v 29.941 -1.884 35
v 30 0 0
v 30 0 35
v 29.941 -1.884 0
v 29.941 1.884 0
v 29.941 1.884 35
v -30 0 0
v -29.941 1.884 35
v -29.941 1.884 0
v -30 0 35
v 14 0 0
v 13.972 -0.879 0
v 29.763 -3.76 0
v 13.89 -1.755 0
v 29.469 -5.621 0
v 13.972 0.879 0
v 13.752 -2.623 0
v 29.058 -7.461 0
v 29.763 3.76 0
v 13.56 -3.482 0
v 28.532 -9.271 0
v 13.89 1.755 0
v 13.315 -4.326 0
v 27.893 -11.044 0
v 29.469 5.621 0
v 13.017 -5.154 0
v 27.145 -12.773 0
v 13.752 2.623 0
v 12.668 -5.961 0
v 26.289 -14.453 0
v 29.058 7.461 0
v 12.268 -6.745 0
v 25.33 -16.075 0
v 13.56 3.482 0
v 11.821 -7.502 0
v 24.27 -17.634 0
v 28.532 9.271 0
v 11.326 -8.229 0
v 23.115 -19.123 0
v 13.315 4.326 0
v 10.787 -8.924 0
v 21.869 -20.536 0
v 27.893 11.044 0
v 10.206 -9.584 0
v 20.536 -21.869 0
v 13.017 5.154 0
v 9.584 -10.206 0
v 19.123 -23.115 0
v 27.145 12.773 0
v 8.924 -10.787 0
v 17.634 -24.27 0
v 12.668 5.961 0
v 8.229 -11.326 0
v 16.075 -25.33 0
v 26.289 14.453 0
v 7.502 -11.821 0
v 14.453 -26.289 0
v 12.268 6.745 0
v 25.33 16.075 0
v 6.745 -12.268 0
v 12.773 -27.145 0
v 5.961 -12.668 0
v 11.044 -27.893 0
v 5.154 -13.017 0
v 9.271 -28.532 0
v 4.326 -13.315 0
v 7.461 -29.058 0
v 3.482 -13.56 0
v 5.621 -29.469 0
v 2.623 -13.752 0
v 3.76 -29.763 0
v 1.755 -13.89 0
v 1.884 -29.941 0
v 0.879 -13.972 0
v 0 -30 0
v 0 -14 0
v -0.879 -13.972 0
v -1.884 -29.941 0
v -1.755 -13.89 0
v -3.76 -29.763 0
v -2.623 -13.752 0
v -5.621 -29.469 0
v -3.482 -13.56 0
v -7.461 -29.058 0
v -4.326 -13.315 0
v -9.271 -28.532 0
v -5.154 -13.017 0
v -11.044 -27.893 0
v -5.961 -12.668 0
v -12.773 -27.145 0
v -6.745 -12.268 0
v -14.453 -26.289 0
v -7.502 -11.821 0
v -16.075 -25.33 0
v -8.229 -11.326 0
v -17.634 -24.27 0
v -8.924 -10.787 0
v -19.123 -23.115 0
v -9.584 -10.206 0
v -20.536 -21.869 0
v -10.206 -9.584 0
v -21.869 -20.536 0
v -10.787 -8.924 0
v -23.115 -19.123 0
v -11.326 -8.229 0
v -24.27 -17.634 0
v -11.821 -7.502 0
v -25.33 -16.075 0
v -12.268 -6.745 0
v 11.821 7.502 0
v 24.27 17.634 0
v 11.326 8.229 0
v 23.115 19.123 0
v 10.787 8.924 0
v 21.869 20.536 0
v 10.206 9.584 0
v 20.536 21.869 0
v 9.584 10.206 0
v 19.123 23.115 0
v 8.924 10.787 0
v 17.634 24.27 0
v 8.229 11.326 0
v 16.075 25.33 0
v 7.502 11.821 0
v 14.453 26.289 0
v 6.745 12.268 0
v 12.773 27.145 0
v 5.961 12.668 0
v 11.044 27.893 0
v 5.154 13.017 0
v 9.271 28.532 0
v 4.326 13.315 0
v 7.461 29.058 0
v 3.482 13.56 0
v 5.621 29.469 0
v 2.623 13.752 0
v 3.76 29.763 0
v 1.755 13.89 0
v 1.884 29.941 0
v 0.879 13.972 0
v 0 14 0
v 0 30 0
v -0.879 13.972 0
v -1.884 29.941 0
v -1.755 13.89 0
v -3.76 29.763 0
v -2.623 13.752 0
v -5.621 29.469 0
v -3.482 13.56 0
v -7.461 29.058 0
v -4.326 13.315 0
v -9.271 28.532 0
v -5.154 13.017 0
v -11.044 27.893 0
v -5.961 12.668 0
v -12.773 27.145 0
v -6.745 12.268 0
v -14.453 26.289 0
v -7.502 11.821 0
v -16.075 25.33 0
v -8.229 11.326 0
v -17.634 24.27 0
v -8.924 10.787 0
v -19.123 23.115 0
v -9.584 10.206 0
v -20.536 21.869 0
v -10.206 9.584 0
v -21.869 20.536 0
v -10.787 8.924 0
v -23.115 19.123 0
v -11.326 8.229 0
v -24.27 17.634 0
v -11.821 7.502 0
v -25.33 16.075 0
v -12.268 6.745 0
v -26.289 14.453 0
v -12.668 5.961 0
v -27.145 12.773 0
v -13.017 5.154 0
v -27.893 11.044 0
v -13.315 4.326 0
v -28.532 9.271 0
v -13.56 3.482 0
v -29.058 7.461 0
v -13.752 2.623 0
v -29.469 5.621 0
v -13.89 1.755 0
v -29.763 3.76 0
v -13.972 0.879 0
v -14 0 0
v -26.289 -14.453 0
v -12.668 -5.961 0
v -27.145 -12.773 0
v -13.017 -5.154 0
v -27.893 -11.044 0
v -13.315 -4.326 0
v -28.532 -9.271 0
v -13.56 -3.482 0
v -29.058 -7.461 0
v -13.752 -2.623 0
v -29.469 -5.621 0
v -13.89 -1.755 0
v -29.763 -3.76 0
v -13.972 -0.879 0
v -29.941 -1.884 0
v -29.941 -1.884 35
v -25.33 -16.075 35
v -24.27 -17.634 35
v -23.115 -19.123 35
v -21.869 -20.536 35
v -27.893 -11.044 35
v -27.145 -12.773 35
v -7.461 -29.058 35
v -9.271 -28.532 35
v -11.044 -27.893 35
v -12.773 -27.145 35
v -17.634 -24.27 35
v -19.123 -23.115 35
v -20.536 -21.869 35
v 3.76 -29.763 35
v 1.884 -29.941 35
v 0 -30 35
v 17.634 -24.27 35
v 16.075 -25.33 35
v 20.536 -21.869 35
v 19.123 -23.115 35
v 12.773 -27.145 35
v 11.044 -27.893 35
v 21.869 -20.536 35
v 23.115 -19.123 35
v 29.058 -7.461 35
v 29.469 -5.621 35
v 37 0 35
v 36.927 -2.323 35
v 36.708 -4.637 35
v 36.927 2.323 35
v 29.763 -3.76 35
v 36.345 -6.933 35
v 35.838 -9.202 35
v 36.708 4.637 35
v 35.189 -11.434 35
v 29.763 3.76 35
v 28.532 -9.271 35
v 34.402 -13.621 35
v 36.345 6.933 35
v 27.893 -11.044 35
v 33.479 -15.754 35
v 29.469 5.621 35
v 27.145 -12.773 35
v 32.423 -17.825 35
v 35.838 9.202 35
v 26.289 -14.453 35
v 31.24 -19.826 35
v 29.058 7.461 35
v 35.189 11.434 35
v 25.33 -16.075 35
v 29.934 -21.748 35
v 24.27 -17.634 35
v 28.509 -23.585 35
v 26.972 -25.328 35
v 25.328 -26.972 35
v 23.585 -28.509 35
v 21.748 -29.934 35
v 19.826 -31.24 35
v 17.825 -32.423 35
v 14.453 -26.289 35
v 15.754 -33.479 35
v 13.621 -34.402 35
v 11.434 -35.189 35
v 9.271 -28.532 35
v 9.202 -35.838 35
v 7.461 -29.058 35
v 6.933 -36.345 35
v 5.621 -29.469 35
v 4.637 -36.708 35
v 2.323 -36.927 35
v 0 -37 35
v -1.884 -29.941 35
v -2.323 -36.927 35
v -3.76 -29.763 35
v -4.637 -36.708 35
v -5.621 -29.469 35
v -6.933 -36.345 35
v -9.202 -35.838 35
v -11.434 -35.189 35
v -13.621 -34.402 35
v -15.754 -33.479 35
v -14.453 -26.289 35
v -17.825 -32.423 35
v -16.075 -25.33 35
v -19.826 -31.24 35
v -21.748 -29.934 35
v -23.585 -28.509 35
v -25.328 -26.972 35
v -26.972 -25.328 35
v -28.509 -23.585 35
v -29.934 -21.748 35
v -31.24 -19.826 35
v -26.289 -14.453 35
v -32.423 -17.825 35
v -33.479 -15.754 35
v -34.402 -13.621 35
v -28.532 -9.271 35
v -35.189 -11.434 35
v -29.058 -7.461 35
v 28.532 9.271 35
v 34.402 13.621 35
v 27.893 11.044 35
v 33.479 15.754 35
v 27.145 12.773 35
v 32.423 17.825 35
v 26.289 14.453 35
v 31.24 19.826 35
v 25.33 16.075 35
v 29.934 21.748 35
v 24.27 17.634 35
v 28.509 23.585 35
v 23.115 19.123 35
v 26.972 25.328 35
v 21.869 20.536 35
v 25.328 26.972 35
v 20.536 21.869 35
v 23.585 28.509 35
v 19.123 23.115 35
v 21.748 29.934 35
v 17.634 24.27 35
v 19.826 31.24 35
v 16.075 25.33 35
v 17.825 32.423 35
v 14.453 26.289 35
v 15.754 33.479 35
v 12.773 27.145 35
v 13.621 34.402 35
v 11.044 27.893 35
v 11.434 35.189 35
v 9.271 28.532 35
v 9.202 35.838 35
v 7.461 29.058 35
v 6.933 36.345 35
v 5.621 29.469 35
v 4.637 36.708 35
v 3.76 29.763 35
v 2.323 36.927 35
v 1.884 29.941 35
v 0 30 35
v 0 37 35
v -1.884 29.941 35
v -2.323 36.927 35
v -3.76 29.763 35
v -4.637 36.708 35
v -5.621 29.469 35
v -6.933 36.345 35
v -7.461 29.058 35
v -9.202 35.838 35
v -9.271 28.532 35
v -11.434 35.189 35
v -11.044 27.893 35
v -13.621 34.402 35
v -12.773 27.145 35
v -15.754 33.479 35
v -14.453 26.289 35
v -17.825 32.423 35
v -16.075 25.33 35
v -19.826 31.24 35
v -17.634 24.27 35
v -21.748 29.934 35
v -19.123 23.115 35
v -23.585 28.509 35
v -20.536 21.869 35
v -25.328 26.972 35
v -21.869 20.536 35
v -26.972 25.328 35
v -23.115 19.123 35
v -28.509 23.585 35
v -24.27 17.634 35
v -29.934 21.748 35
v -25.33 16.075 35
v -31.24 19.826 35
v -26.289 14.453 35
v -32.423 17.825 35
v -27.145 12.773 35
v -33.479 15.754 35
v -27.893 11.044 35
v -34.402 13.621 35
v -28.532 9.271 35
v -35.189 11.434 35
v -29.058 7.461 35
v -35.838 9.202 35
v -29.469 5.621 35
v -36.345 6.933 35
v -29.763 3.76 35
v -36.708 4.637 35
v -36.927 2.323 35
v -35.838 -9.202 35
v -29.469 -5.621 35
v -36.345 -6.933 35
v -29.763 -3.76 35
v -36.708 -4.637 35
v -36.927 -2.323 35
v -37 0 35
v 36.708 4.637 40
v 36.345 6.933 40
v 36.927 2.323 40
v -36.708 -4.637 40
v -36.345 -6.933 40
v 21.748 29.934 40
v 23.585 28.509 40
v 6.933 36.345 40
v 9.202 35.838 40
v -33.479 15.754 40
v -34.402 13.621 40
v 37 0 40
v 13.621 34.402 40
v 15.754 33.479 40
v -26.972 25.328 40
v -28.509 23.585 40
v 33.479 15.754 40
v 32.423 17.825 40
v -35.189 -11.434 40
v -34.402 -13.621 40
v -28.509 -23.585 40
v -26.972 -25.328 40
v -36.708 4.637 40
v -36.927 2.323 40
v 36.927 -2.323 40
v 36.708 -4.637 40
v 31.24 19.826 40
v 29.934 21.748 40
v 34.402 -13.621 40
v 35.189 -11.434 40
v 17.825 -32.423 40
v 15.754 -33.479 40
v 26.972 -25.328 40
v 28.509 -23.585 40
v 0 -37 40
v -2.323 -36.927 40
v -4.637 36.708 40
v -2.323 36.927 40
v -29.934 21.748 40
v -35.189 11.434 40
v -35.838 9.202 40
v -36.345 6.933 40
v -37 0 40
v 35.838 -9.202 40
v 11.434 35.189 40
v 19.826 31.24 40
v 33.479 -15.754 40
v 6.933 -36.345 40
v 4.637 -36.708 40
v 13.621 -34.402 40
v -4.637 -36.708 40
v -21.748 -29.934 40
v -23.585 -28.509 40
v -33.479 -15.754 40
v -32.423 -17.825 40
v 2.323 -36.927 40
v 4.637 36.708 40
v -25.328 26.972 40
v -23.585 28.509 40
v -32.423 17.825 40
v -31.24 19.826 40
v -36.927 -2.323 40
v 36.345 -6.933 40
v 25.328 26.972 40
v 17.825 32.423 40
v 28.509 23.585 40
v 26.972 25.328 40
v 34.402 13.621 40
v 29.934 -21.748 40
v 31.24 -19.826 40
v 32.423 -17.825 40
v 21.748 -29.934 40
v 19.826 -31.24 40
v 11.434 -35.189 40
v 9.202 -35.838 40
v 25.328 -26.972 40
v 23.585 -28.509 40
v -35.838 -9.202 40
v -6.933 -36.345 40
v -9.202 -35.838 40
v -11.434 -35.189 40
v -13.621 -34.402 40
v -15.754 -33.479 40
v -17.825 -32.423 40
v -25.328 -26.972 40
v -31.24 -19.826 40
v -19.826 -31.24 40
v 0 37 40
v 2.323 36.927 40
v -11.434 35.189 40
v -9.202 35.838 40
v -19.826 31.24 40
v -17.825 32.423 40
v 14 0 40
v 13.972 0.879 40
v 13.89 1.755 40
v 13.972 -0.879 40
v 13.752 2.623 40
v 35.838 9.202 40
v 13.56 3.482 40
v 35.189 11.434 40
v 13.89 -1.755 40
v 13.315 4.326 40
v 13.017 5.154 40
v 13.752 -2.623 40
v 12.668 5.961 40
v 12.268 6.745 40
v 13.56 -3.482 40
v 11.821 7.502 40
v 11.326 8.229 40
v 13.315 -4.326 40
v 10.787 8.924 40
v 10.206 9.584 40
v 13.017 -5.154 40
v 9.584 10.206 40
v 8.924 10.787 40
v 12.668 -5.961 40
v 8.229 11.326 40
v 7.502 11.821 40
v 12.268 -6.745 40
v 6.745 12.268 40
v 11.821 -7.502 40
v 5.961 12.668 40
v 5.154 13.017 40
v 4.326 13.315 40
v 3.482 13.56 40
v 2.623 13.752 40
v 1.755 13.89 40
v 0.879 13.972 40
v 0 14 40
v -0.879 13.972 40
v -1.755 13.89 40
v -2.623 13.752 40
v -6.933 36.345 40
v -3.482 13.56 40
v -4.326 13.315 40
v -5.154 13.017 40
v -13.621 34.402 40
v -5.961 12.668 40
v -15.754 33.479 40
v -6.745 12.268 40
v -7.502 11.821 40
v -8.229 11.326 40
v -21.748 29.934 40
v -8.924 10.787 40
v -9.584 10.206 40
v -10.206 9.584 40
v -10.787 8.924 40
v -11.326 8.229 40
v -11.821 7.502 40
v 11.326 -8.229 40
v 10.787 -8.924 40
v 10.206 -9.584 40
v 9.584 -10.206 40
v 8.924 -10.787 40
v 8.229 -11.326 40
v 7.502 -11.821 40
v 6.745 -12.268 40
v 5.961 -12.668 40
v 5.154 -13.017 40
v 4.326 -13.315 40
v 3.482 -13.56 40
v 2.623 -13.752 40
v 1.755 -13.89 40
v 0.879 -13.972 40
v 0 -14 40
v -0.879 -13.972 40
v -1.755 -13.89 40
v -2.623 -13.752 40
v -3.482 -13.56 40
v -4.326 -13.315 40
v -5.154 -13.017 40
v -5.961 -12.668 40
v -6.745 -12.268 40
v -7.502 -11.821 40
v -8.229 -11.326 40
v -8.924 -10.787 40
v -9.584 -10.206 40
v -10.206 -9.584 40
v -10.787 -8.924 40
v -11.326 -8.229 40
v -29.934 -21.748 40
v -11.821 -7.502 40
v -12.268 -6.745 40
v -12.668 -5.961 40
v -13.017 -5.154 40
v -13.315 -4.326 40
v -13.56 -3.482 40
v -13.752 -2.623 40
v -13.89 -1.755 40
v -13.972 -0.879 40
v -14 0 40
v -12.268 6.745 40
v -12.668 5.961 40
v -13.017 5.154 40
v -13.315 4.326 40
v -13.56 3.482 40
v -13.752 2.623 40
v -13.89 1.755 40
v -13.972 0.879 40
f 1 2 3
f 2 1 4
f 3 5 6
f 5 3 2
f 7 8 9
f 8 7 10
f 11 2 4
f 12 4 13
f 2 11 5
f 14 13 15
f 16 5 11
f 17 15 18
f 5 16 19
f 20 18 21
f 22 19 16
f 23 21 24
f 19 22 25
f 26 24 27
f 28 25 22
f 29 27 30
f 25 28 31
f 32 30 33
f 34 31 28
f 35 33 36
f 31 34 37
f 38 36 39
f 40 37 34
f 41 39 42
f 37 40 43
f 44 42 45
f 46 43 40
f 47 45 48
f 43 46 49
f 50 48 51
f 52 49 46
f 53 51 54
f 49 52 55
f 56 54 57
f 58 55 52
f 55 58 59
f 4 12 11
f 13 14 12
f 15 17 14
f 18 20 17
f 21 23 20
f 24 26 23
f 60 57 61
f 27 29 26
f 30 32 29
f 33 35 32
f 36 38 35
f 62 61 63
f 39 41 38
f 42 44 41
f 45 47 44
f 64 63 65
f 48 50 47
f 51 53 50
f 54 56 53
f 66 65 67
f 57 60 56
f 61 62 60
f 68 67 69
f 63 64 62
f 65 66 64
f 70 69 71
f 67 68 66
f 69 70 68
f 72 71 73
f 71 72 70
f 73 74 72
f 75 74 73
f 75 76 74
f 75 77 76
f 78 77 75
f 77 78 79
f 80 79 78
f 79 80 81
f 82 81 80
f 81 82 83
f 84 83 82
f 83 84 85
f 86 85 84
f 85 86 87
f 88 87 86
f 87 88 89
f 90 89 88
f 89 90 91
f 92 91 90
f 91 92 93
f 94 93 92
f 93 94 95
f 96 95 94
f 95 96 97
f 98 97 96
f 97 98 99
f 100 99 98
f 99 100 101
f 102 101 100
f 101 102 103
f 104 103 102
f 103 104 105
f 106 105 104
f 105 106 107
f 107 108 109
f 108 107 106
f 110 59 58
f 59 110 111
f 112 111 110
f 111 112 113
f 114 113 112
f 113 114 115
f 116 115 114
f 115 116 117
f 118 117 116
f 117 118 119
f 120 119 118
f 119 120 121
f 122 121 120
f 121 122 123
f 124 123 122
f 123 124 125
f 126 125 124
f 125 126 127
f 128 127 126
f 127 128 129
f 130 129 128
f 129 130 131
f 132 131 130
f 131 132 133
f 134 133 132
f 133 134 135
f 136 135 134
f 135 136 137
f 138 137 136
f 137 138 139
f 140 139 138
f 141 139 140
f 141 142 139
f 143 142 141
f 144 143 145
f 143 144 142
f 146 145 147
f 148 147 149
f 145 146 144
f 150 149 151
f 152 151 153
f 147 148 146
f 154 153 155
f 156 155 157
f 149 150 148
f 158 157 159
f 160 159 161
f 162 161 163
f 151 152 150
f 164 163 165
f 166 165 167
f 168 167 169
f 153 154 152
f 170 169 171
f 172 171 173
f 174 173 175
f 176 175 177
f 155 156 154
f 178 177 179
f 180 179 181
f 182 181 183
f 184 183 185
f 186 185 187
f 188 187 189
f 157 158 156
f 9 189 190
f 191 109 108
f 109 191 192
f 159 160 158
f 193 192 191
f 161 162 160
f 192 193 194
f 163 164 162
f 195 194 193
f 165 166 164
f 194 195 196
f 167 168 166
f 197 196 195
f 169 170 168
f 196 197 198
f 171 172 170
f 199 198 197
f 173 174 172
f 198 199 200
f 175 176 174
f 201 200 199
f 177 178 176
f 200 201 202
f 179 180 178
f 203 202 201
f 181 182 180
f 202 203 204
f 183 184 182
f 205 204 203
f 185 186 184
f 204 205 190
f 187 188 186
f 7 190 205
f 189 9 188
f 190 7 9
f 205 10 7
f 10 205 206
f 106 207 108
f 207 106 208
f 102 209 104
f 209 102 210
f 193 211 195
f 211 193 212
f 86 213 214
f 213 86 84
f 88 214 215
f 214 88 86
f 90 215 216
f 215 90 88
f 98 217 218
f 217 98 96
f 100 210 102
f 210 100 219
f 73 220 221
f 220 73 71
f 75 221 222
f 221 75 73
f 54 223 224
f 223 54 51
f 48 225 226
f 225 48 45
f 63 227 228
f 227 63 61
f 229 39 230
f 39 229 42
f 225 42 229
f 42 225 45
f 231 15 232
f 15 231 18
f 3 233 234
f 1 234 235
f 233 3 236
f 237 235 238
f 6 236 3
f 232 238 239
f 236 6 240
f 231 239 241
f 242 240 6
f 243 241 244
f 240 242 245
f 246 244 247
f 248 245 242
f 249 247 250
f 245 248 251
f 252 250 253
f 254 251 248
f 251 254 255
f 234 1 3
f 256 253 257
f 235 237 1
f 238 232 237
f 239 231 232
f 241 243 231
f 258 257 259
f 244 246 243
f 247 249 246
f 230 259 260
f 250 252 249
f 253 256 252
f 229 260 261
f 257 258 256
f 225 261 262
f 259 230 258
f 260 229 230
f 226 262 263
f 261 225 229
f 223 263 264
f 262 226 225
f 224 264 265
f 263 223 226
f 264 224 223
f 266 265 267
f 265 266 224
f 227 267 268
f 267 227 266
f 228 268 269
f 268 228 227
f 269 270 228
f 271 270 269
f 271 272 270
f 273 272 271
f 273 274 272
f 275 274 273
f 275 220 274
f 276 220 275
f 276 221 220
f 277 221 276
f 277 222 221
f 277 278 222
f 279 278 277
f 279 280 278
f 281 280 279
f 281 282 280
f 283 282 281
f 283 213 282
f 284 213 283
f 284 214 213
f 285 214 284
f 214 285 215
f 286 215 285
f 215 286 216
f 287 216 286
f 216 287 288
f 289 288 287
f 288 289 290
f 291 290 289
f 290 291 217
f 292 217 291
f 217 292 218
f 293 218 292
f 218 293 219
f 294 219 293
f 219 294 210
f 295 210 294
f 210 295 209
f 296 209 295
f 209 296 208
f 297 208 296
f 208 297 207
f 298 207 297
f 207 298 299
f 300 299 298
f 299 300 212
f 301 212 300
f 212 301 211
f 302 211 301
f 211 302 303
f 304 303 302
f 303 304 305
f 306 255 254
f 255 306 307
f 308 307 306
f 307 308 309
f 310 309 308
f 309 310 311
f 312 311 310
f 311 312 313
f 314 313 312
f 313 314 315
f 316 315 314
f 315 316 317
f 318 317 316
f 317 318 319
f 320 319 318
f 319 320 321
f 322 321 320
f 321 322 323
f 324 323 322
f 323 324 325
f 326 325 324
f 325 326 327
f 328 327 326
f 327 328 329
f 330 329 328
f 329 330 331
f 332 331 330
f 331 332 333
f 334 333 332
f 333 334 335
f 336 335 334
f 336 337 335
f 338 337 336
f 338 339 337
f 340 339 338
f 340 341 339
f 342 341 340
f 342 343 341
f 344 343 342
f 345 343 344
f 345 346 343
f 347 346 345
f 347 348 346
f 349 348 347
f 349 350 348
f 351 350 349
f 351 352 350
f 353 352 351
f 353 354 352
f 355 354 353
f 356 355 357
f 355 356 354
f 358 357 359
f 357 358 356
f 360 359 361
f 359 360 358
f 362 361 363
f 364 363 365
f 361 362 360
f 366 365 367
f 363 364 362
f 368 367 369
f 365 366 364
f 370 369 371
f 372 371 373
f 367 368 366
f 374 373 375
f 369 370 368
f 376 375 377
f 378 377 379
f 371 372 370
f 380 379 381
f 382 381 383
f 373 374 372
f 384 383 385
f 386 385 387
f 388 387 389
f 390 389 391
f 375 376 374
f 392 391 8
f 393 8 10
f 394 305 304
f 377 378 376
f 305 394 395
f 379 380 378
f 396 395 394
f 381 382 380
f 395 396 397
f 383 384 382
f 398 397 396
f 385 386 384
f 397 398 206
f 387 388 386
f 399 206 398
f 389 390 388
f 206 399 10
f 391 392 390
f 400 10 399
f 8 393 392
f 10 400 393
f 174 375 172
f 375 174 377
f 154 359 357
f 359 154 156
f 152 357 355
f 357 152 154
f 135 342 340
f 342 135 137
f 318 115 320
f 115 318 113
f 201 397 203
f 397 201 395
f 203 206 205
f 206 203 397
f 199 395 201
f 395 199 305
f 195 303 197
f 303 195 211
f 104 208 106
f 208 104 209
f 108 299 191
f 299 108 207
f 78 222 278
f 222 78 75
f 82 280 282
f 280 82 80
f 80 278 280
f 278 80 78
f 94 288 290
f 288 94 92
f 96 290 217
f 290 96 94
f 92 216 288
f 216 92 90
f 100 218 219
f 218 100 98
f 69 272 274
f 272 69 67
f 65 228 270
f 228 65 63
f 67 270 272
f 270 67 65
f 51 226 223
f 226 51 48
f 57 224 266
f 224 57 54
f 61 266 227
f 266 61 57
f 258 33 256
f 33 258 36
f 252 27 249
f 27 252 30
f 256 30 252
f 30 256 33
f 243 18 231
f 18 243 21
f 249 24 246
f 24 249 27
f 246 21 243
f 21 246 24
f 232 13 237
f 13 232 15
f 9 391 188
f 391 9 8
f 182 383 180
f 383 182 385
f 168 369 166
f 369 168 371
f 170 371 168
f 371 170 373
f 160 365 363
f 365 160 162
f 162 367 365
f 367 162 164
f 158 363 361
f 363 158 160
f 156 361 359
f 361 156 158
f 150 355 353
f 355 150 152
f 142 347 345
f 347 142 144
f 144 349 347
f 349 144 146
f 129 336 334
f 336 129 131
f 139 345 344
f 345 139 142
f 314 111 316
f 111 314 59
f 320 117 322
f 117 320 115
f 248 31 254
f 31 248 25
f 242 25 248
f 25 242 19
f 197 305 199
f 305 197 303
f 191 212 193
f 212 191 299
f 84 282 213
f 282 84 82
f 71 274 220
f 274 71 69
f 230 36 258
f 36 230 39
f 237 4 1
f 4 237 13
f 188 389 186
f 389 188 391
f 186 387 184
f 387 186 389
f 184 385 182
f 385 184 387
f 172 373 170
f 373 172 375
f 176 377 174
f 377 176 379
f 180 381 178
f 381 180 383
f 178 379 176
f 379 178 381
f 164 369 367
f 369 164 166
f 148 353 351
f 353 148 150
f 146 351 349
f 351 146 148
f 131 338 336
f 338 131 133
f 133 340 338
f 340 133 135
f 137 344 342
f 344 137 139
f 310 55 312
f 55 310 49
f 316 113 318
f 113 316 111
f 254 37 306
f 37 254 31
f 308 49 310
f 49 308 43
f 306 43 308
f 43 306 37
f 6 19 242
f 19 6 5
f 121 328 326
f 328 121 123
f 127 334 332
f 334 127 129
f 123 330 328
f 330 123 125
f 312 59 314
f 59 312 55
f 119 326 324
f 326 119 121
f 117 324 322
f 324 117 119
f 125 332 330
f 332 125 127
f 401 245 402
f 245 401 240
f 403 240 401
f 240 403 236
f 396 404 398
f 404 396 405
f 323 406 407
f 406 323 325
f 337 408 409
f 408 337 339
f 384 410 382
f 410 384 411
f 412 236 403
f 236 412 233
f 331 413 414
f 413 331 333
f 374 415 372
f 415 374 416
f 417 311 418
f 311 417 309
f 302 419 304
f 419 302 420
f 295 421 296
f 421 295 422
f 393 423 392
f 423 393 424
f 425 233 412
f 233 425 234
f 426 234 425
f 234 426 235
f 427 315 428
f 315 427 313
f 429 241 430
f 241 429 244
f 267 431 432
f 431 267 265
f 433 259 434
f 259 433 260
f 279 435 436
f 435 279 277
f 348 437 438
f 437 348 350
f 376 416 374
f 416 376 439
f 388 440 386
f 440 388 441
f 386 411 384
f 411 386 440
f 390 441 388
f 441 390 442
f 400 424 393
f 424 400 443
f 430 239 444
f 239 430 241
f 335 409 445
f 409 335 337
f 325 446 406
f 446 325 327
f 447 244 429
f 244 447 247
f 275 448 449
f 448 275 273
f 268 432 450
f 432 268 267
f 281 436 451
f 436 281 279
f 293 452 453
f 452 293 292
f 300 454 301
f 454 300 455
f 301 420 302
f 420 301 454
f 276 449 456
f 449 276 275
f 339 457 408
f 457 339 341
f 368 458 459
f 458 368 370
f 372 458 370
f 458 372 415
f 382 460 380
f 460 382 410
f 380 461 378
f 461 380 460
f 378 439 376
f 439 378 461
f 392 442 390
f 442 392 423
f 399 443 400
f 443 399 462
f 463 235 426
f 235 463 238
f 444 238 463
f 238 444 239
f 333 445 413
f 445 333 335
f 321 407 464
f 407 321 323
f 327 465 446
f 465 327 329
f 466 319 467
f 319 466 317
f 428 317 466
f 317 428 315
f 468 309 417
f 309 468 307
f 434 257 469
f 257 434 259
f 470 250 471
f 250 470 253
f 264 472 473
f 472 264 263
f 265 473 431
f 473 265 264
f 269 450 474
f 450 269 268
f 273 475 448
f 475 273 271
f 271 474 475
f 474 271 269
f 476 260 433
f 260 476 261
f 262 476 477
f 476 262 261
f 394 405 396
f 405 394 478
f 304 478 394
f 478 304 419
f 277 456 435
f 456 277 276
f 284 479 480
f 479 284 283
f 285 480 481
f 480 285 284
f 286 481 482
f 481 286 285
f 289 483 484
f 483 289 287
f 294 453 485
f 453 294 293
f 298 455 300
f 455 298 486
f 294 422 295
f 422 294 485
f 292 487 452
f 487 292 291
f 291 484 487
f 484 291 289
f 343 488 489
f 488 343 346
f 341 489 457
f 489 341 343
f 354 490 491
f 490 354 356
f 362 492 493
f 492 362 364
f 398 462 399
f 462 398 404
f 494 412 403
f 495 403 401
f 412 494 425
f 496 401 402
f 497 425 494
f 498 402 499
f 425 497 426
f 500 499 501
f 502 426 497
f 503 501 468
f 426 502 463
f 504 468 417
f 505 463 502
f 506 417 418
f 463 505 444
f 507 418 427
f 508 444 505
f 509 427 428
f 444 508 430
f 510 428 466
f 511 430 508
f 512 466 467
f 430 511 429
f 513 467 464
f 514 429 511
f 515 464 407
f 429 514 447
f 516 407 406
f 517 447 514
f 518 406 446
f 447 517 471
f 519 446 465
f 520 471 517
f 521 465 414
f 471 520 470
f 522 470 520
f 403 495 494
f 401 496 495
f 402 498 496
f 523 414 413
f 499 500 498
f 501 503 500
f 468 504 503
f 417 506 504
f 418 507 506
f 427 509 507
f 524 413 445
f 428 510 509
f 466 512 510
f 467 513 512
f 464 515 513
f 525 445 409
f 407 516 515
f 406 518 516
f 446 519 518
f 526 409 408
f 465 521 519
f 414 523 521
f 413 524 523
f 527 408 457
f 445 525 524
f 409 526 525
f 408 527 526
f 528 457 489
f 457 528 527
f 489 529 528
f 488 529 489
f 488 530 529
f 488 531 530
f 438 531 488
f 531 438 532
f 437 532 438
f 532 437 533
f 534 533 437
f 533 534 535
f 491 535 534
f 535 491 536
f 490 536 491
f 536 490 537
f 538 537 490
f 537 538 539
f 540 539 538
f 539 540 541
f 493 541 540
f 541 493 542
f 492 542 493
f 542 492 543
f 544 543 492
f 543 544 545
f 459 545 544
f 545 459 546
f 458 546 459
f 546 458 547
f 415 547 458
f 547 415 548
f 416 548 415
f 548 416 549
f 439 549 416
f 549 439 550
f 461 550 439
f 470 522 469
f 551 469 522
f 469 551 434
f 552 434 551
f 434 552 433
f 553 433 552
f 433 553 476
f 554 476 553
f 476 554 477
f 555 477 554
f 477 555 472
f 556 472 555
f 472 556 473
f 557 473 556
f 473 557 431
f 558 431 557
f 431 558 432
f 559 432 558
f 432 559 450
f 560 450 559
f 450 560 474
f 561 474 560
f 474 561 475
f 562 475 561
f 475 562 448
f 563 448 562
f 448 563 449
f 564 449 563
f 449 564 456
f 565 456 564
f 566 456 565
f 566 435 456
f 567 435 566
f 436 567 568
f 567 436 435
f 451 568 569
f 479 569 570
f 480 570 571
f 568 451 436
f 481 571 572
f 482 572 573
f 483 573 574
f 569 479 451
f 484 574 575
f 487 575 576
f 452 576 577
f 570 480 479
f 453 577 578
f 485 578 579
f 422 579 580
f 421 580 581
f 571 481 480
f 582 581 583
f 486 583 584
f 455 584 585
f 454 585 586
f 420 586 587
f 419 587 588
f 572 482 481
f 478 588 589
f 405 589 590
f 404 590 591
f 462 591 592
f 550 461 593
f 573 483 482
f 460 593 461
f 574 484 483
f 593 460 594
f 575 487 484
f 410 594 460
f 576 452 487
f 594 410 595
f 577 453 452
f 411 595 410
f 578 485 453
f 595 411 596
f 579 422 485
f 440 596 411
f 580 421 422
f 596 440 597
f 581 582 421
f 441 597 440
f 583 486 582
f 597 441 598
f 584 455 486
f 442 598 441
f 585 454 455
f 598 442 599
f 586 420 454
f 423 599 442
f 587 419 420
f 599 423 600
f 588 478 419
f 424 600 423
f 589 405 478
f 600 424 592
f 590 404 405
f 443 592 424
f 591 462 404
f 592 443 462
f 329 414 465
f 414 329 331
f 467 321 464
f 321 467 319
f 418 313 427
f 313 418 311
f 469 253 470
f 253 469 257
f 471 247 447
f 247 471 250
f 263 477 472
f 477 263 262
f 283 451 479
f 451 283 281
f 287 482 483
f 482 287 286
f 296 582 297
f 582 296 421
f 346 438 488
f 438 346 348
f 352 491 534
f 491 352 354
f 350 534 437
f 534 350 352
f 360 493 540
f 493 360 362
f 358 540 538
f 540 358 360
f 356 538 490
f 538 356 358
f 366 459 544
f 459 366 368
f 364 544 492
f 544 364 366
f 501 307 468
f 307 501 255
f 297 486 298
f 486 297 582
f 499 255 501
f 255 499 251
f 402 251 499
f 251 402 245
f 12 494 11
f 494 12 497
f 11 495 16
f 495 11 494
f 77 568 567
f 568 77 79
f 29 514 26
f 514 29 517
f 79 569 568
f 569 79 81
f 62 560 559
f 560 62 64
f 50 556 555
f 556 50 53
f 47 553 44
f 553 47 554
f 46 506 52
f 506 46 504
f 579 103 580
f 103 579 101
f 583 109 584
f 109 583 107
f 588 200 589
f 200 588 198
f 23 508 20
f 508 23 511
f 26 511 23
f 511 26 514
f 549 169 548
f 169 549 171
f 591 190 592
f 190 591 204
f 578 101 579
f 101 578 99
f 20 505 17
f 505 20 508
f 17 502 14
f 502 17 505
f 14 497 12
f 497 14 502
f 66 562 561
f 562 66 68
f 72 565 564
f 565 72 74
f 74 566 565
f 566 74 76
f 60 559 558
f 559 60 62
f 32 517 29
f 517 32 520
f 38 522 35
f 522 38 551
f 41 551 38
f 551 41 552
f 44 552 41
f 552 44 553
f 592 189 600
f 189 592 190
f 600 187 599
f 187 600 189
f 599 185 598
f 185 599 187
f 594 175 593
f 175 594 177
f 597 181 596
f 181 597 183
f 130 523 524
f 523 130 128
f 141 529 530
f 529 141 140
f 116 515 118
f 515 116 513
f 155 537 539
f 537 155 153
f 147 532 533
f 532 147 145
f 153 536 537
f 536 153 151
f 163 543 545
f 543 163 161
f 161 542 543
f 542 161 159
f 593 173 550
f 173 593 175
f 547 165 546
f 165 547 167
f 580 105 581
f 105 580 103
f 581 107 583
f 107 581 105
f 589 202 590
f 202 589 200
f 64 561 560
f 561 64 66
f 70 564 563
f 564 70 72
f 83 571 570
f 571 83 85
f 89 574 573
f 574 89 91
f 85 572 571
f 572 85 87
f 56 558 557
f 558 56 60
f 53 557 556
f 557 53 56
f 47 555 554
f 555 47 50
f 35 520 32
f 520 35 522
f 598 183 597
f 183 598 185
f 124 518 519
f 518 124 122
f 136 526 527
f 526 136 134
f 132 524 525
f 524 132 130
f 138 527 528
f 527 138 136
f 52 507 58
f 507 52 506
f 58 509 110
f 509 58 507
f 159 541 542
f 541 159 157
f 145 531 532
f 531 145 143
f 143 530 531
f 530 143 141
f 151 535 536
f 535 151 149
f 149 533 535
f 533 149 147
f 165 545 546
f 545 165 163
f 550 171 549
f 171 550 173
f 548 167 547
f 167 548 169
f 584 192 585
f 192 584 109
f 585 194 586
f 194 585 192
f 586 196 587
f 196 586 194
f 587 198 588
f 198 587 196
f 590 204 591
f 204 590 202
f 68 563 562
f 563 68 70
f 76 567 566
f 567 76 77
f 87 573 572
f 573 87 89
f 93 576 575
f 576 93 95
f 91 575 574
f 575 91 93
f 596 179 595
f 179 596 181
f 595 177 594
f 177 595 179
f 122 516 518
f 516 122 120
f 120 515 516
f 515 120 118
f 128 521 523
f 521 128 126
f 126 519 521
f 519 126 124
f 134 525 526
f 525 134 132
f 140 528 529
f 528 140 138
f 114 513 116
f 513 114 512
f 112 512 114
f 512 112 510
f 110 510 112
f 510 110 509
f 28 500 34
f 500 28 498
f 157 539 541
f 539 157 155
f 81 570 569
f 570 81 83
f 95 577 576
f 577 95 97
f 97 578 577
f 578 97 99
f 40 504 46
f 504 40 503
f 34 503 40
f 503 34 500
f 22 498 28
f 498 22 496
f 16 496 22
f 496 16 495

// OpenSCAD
resolution = 100;
Stand(30, 37, 5, 14, 40, resolution);

module Stand(diameterStand, diameterStandTop, 
    lenghtStandTop, diamenterLampMount, lenghtLampMount, resolution){
    difference() {
        StandBase(diameterStand, diameterStandTop, lenghtStandTop, lenghtLampMount, resolution);
        
        translate([0, 0, -1]){
            linear_extrude(height = lenghtLampMount +2, $fn=resolution){
                circle(diamenterLampMount);
            }
        }
    }
}

module StandBase(diameterStand, diameterStandTop, lenghtStandTop, lenghtLampMount, resolution){
    lenghtStand = lenghtLampMount - lenghtStandTop;
    
    color("white"){
        linear_extrude(height = lenghtLampMount - lenghtStandTop, $fn=resolution){
            circle(diameterStand);
        }

        translate([0, 0, lenghtStand]){
            linear_extrude(height = lenghtStandTop, $fn=resolution){
                circle(diameterStandTop);
            }
        }
    }
}
